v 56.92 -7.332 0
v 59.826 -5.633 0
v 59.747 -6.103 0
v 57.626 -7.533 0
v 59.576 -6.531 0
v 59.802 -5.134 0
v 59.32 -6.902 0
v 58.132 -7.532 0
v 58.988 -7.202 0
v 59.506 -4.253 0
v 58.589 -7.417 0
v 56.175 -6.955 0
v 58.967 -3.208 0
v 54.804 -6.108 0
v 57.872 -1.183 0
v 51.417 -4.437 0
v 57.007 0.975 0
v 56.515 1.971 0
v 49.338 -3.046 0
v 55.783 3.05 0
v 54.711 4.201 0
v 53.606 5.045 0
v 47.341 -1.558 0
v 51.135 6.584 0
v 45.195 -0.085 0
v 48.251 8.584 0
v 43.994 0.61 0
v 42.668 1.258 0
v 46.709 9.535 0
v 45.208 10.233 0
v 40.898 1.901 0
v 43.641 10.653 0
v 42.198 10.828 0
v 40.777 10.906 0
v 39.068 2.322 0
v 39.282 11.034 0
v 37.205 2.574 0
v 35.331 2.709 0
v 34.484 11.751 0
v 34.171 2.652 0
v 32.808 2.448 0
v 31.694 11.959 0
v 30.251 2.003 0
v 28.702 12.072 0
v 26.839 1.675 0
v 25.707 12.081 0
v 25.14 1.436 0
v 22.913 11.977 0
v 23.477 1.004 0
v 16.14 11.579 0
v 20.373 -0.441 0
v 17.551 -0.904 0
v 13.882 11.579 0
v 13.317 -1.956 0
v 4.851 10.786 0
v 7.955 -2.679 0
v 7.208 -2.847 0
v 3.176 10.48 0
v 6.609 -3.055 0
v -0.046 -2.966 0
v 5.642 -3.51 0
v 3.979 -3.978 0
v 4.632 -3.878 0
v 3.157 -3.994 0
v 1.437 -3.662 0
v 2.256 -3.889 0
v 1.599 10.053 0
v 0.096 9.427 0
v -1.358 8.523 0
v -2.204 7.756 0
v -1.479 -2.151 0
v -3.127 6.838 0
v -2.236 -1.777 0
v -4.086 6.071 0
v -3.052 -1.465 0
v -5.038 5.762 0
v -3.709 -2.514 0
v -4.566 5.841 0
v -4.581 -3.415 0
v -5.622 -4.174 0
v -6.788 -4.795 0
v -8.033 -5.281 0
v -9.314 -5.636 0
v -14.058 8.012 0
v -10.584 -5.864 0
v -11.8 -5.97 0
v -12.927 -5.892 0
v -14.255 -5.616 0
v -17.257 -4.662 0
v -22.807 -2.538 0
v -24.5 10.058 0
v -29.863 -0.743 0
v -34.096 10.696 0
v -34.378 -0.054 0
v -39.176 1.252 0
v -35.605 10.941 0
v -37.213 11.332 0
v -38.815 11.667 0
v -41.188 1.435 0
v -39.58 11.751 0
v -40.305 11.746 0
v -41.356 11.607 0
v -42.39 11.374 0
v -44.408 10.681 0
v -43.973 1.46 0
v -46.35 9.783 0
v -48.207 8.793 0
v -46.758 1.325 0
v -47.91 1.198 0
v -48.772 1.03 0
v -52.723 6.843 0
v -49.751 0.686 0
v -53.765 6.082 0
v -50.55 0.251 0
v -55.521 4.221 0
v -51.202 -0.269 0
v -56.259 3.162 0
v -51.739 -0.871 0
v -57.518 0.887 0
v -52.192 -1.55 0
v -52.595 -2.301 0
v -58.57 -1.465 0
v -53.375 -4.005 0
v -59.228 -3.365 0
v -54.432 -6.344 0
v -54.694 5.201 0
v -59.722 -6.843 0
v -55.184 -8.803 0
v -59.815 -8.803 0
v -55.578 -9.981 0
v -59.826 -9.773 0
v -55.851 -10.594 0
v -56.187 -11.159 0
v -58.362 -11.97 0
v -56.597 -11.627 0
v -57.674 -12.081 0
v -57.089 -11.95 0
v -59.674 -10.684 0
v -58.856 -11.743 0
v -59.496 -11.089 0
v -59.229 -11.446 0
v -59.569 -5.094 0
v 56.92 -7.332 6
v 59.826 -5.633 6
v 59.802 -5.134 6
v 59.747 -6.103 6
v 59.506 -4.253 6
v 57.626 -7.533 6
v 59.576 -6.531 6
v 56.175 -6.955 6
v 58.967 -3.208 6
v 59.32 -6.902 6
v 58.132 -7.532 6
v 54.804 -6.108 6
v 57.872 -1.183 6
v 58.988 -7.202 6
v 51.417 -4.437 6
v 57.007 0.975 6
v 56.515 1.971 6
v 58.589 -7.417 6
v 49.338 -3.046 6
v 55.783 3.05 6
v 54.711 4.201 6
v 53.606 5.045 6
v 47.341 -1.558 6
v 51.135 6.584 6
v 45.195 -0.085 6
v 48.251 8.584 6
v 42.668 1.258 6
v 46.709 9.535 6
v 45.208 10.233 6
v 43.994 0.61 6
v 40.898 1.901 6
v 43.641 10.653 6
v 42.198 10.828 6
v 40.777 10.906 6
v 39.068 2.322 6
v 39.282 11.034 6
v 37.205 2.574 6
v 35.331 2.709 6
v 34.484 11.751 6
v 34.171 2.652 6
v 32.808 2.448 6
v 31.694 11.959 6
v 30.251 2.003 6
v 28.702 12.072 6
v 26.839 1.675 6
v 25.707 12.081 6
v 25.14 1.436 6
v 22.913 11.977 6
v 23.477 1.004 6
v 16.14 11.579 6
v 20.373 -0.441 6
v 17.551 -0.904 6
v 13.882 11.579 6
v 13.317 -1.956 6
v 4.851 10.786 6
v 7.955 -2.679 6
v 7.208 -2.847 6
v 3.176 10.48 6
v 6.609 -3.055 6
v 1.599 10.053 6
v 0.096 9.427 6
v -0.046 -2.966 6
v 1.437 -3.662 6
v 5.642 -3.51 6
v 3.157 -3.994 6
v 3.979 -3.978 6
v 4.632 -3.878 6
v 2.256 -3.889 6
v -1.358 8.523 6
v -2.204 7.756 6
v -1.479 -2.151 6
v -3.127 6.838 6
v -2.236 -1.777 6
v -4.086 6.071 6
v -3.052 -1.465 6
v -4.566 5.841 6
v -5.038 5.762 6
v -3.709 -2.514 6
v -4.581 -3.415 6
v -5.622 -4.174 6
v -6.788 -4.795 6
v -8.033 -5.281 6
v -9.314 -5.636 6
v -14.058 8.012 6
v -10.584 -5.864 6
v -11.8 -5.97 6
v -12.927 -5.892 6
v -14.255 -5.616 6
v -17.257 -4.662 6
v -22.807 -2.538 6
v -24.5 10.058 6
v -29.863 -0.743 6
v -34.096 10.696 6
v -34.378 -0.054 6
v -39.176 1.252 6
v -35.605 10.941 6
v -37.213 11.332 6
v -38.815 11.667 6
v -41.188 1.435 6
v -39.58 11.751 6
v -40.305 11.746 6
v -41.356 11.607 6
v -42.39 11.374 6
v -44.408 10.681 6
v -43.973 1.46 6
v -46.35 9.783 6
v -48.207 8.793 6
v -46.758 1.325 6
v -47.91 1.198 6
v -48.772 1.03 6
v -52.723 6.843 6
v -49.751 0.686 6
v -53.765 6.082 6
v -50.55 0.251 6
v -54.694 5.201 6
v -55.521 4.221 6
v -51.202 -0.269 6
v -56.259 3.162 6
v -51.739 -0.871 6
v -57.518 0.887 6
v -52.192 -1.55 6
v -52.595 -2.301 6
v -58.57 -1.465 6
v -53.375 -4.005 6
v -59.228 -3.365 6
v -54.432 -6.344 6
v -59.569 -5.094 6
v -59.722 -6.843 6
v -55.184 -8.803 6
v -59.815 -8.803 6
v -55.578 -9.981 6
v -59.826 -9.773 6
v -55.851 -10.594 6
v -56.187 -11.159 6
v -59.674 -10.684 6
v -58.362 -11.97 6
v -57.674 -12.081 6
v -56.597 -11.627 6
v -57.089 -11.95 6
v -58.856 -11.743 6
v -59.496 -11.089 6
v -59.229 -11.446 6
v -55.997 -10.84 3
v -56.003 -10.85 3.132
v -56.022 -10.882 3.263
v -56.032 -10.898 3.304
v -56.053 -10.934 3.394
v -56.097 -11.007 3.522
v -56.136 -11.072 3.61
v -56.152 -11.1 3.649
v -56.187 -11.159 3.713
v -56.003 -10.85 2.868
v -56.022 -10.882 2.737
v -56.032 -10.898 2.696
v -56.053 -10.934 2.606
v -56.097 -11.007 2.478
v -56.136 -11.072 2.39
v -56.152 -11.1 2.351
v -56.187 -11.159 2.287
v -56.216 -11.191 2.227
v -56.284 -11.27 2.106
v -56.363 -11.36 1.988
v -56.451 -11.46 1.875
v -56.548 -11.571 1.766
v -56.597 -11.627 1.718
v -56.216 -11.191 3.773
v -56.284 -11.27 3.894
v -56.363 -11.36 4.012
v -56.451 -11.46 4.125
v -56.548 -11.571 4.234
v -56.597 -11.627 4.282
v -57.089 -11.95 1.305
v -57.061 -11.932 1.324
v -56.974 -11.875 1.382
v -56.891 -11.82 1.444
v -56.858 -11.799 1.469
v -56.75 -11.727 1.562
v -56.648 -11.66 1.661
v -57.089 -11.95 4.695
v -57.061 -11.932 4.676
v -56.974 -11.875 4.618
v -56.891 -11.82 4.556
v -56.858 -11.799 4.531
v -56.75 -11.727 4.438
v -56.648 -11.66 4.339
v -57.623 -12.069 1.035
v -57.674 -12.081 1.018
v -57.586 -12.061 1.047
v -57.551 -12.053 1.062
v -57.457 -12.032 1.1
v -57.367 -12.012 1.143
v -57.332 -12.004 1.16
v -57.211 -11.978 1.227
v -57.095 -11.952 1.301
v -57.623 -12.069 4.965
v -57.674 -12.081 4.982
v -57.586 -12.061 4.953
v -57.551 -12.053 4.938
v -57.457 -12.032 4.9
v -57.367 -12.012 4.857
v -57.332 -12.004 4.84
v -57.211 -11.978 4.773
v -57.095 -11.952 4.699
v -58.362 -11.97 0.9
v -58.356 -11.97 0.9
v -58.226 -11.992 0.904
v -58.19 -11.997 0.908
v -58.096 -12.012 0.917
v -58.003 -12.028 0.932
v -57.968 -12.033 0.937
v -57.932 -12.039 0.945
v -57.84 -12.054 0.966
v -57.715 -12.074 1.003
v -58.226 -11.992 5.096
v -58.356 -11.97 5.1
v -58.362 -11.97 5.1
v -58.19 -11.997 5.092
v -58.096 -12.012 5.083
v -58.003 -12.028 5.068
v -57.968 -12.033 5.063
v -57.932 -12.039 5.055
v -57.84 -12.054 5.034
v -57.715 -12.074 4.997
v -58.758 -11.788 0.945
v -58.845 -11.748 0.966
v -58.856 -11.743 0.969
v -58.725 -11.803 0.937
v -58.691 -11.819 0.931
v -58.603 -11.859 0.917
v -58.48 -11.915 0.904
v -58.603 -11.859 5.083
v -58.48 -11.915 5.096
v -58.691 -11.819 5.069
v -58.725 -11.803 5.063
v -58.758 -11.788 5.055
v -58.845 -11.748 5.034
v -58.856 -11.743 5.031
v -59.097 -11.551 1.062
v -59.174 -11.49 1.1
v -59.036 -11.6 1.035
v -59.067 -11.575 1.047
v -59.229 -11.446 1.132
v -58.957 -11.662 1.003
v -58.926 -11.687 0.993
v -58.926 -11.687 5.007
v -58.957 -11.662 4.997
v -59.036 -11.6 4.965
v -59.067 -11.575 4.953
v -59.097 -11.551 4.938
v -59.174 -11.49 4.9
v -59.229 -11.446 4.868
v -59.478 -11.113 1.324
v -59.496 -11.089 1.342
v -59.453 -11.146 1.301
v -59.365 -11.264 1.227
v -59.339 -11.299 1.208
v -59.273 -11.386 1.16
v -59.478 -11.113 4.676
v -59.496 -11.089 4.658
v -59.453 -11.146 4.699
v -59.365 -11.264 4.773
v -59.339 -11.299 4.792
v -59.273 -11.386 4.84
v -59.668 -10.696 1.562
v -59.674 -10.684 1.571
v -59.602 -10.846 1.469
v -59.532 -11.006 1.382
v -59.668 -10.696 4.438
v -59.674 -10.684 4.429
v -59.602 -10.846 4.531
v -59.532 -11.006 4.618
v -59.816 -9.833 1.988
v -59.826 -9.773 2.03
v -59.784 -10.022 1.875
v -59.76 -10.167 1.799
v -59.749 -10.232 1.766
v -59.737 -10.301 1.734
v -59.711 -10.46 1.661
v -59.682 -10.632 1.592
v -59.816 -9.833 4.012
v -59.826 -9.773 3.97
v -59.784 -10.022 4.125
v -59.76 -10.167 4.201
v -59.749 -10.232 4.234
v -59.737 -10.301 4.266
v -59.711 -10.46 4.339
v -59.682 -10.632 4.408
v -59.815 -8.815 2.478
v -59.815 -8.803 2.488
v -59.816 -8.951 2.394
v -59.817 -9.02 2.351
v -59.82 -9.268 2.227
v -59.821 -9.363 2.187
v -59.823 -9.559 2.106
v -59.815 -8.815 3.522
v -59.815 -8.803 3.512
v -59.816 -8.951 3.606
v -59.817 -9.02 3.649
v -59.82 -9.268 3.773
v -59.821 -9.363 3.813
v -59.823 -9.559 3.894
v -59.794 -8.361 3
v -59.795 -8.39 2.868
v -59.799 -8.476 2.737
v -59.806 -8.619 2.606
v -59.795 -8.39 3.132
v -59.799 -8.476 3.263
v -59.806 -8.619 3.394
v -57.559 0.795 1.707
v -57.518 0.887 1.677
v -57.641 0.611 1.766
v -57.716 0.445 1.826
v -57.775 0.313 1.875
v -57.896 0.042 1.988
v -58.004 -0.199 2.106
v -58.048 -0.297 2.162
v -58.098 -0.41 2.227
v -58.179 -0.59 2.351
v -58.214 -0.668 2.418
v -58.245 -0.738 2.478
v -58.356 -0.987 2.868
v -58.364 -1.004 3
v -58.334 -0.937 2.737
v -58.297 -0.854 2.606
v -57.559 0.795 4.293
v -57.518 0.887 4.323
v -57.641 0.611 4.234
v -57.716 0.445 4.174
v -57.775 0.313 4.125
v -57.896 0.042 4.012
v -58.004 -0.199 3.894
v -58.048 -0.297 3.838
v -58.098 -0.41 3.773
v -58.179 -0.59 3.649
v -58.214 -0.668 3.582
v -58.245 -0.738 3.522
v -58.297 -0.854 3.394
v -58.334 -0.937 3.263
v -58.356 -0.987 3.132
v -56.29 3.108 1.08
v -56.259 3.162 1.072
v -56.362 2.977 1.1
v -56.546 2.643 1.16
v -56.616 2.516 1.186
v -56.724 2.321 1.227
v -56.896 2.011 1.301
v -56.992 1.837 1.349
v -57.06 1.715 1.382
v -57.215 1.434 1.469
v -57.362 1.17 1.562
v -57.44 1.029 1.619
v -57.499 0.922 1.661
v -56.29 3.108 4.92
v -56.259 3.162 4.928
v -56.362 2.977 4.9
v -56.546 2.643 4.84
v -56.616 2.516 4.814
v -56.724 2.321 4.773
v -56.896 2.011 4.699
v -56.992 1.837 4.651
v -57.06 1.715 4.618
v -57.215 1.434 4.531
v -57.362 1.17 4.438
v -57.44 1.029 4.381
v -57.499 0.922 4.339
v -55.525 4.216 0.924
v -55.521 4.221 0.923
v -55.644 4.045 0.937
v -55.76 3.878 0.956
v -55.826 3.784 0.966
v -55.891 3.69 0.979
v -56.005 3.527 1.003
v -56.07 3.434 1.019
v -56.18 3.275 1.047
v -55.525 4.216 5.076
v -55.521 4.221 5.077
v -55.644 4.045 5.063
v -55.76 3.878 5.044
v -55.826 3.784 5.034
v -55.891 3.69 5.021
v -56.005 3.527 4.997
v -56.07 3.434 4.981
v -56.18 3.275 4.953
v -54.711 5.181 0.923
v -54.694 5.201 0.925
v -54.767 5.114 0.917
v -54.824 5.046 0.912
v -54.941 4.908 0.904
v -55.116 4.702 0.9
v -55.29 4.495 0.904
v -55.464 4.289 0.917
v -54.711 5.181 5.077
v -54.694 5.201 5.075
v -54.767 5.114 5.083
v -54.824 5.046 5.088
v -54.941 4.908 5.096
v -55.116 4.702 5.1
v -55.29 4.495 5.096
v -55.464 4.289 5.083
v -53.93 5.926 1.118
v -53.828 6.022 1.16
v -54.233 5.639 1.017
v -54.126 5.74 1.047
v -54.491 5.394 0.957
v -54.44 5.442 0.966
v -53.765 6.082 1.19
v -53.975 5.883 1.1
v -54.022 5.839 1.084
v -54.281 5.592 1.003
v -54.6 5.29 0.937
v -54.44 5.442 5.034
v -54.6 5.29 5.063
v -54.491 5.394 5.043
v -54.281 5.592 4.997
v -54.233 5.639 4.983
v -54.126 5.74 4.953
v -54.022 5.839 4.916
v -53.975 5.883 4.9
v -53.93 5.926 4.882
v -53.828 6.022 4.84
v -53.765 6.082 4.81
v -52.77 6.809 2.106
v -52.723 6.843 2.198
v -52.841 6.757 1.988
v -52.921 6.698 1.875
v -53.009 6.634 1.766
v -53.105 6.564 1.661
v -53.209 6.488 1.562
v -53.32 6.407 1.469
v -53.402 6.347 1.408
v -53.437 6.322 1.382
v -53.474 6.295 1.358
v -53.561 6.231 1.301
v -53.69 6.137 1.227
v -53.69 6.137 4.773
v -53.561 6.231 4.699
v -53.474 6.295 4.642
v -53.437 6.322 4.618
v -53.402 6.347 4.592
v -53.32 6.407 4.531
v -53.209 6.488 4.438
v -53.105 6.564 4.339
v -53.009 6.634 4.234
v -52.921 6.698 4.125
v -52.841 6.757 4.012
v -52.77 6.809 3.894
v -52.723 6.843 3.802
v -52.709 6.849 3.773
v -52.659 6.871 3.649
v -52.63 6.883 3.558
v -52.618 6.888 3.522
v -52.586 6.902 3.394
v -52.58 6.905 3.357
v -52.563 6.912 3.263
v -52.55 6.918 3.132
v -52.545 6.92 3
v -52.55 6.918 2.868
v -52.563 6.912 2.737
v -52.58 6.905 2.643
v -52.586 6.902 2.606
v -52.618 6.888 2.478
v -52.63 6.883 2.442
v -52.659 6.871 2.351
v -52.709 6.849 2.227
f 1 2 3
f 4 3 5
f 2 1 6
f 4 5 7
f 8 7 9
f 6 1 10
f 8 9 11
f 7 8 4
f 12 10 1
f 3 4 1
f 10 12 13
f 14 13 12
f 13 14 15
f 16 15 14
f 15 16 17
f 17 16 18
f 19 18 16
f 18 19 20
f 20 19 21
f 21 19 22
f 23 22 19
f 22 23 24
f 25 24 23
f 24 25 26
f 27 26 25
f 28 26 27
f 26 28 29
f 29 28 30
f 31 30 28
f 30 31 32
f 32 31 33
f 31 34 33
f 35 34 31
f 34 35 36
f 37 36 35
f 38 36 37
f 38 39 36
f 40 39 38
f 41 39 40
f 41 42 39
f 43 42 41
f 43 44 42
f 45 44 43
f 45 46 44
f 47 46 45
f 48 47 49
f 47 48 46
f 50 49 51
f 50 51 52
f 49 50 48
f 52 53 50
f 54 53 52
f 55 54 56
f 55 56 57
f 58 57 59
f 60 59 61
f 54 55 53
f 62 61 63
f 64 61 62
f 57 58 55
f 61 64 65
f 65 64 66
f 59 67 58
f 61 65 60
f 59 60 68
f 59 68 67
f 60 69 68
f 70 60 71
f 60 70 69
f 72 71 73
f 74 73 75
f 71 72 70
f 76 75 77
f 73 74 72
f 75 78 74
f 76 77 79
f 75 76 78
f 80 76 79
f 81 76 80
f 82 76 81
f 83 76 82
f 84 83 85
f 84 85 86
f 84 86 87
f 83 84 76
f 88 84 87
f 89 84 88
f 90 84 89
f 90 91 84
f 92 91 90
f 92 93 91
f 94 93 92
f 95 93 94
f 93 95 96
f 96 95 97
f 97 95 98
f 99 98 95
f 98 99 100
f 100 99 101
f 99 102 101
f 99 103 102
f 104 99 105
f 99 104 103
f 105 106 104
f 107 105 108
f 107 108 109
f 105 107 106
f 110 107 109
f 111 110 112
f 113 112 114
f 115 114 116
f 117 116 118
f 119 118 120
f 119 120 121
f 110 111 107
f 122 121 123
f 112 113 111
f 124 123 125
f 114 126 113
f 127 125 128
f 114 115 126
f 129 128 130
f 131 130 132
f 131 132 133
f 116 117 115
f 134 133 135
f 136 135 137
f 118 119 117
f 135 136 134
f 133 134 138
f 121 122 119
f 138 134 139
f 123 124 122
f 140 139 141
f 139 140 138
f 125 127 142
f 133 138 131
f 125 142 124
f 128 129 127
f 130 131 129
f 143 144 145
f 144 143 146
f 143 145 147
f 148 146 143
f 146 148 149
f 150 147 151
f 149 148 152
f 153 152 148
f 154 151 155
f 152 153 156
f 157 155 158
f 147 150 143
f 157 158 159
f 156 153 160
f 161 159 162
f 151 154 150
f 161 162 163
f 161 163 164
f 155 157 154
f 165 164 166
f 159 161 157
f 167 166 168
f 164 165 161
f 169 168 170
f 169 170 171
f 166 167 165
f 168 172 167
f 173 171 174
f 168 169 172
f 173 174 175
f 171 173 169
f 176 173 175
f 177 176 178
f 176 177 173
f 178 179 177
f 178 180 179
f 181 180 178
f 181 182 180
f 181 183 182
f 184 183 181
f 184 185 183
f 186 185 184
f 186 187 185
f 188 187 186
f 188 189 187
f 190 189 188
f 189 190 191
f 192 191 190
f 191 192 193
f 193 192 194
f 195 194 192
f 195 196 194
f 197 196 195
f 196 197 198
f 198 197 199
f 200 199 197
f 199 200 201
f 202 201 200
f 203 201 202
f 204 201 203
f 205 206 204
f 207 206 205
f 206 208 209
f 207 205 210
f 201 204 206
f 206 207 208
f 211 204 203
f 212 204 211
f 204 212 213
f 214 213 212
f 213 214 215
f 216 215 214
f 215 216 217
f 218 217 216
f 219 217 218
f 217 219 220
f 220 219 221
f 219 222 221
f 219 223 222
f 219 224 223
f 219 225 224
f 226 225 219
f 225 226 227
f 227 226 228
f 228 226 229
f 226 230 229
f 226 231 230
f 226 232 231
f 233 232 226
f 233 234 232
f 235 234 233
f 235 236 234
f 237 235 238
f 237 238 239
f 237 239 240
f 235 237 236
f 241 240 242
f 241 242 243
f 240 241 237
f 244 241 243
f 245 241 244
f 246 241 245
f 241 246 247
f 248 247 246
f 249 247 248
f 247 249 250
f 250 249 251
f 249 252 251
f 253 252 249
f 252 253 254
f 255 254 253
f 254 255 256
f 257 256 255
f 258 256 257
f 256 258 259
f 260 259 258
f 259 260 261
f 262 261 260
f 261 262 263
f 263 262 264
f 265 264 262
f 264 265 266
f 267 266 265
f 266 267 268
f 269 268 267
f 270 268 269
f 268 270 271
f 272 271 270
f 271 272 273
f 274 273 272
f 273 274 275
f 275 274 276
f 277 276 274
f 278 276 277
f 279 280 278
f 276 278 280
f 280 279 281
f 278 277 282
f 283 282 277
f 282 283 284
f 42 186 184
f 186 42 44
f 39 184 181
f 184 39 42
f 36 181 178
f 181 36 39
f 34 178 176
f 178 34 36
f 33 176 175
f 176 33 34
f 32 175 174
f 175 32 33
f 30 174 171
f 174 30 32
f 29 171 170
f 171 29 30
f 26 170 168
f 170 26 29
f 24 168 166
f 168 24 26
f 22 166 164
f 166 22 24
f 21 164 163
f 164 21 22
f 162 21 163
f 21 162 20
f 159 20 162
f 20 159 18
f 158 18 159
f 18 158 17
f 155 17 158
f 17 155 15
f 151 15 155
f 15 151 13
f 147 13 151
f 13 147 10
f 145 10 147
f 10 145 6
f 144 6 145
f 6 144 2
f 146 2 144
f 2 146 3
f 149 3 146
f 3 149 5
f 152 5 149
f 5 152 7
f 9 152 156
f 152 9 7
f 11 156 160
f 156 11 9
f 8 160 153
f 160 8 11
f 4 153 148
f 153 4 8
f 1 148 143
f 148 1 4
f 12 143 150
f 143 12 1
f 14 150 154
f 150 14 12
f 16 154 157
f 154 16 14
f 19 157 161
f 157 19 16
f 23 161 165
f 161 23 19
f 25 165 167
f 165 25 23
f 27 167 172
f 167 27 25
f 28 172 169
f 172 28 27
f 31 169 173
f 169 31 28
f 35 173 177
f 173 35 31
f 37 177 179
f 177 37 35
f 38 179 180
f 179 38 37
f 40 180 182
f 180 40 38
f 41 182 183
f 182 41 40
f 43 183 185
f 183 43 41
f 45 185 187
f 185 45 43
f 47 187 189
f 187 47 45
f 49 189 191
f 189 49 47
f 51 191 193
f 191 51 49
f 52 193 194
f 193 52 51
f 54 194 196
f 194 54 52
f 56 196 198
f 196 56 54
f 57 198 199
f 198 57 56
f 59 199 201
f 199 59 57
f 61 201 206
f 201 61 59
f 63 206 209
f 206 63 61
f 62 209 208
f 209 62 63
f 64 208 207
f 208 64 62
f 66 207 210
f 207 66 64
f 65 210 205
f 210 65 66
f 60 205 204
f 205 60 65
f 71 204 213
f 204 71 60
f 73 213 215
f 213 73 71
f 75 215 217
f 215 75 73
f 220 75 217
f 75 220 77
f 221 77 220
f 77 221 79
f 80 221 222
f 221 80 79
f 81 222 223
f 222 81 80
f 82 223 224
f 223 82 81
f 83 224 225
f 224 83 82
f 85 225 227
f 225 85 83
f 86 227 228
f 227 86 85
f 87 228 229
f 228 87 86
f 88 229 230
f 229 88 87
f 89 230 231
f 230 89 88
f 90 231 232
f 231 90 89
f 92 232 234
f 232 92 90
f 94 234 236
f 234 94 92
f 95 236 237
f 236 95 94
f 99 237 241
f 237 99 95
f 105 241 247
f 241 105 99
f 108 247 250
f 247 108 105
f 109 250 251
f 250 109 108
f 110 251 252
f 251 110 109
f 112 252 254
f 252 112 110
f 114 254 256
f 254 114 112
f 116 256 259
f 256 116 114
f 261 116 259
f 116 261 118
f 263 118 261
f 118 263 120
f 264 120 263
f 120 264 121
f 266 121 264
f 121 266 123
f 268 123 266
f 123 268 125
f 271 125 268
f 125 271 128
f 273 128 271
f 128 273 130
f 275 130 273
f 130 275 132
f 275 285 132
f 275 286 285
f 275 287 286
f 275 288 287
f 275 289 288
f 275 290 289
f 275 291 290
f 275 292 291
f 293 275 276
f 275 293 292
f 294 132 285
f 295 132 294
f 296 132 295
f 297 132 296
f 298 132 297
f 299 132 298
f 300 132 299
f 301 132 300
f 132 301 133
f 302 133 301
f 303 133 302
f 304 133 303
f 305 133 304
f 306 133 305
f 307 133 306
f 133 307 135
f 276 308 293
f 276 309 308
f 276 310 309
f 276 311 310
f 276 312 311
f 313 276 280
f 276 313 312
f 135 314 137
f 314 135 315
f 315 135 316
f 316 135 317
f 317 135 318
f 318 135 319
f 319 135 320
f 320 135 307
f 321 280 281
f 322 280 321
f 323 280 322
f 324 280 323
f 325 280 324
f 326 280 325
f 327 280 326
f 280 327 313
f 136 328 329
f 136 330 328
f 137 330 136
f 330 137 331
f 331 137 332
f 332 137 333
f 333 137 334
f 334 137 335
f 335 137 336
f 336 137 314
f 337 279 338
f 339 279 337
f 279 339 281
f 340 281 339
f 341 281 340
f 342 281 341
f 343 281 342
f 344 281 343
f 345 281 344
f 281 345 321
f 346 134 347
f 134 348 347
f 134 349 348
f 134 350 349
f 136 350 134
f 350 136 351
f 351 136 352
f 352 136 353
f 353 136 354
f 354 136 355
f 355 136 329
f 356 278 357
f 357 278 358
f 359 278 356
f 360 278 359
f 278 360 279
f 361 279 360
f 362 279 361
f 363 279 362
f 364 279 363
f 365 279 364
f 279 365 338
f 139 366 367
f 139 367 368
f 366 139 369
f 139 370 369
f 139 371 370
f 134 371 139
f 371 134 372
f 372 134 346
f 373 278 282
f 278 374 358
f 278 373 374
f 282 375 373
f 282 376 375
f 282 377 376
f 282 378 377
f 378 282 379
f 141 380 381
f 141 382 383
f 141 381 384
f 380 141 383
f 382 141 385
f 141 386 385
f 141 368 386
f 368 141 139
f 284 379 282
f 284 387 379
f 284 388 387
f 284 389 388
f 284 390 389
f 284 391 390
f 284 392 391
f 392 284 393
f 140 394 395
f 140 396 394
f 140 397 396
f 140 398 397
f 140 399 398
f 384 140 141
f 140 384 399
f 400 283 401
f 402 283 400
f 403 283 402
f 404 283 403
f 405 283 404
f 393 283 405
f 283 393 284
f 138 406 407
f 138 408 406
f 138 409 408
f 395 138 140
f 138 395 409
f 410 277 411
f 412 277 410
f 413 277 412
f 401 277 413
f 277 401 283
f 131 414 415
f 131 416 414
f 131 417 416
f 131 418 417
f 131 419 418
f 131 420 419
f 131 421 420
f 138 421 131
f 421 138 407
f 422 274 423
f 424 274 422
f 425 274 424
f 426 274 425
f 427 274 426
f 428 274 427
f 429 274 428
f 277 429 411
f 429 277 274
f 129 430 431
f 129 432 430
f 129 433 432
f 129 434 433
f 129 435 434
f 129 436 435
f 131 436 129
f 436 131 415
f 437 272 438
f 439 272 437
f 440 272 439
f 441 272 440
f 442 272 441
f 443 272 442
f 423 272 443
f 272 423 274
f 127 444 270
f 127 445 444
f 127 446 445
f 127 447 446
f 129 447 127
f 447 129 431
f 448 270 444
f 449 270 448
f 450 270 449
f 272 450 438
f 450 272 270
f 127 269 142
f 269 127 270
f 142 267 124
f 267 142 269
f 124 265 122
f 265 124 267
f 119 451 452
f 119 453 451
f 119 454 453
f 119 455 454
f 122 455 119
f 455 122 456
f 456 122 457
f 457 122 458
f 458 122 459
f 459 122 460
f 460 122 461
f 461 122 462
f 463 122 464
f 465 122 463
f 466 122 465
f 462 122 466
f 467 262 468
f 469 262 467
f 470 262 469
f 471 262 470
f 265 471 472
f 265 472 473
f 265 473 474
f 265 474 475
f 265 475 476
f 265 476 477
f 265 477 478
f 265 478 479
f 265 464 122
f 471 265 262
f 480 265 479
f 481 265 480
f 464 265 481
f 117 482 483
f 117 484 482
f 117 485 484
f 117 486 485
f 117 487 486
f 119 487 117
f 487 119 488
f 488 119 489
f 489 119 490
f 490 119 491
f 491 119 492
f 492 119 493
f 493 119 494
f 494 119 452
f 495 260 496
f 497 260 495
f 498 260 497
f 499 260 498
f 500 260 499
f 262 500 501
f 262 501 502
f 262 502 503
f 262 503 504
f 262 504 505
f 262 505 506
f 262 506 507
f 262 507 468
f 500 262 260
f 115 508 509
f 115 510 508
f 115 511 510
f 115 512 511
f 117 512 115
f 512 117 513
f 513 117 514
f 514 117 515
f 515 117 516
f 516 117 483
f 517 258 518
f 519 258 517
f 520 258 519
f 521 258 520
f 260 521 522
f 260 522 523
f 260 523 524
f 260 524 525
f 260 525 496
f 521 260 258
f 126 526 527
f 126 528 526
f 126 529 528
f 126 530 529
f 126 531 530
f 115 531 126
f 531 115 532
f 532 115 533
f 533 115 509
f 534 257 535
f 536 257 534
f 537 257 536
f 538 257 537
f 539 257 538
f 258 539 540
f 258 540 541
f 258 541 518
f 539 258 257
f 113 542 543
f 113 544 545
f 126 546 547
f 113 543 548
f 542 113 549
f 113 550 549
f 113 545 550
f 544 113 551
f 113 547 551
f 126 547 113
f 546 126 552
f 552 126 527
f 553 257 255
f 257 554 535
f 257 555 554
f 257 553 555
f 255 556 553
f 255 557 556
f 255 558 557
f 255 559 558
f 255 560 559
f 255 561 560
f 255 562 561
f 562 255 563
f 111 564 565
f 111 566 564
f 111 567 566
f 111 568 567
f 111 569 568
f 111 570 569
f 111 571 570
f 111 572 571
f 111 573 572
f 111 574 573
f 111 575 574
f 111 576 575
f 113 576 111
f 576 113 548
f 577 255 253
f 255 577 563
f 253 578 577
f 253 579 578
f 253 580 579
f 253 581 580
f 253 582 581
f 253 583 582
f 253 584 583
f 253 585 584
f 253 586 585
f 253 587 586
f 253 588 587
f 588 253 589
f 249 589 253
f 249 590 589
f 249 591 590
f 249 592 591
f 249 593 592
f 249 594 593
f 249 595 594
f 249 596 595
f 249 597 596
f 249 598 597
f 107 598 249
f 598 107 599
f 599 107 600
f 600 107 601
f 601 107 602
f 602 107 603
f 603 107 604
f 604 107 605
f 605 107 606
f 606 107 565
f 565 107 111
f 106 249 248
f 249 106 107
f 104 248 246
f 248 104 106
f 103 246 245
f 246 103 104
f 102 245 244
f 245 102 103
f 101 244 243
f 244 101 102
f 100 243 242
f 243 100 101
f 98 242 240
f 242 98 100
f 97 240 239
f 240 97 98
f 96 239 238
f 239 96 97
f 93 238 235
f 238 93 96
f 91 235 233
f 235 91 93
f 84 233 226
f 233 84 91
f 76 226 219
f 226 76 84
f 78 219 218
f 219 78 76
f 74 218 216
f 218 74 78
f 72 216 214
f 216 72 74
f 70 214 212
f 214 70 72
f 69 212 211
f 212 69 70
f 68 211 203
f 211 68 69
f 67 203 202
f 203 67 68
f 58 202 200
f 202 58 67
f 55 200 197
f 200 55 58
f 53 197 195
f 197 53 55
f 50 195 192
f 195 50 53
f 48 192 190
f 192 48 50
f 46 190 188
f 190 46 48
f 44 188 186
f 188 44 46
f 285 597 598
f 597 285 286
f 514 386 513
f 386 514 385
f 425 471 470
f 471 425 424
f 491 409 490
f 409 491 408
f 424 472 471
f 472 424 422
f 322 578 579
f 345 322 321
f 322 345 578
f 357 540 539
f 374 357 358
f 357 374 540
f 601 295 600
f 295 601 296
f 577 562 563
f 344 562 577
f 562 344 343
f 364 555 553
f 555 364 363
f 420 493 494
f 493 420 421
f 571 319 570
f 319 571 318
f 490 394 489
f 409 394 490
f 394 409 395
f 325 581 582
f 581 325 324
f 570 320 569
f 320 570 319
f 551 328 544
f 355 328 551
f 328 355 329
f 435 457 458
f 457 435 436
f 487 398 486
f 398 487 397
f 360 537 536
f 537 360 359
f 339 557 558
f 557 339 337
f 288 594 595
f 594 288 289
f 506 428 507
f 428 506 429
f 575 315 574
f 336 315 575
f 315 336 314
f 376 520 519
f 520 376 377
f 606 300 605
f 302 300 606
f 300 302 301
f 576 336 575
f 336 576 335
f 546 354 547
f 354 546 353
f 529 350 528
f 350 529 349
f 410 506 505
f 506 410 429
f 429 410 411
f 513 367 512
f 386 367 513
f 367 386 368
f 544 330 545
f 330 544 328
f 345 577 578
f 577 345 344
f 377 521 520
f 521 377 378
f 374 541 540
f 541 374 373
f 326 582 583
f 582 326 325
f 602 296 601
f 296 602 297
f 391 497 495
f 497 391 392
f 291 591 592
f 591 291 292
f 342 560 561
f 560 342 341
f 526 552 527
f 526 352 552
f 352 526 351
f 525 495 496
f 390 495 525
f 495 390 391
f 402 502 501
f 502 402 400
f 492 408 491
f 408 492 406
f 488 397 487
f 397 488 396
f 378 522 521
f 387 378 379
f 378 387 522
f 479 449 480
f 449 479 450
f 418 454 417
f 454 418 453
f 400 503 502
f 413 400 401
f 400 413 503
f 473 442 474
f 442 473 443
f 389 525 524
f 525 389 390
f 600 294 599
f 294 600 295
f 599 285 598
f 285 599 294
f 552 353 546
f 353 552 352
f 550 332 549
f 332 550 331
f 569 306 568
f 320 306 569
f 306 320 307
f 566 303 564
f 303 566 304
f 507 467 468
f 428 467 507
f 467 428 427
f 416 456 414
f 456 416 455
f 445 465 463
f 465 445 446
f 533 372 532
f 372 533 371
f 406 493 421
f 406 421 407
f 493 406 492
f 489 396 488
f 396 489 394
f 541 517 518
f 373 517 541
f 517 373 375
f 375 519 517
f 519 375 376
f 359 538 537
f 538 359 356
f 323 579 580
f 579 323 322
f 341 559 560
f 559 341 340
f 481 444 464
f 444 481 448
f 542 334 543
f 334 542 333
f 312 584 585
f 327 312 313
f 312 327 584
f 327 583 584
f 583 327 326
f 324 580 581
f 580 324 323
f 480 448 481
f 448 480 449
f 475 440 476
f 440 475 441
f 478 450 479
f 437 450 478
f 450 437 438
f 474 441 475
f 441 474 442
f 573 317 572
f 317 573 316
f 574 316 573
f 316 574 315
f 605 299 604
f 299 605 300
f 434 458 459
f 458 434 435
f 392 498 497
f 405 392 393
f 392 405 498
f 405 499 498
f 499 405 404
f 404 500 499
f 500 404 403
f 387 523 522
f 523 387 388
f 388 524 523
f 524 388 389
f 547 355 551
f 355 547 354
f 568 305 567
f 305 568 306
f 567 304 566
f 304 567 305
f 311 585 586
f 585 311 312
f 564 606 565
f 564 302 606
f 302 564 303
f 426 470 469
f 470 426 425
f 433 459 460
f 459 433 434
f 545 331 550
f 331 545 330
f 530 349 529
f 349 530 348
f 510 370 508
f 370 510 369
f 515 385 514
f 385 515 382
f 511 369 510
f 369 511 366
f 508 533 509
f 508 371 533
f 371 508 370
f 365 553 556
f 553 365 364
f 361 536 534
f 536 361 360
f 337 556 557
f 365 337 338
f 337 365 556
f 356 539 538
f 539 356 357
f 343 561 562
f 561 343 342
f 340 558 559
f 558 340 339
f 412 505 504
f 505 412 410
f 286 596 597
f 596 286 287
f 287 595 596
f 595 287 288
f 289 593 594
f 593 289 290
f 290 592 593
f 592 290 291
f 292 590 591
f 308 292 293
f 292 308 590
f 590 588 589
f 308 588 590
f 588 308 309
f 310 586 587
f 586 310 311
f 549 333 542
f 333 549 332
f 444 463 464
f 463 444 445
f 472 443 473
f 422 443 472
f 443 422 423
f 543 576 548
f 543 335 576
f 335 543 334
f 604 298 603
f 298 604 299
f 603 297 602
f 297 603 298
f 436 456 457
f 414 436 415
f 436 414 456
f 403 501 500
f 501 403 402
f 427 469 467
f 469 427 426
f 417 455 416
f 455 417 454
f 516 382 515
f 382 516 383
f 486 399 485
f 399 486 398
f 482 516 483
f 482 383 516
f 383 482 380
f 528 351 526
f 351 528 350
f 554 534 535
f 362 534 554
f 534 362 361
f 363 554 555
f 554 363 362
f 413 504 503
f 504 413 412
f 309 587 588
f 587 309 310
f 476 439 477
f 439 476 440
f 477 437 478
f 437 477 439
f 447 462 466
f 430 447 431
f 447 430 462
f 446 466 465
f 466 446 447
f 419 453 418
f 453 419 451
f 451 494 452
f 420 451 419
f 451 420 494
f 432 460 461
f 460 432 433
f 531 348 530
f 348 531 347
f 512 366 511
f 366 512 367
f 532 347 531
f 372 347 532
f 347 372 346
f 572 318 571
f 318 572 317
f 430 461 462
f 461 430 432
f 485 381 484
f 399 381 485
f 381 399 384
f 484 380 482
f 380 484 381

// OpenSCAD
// file: ../18-frida-kahlo-book-lede.w1200.h630.scad
fridaKalohBrow(5);

module fridaKalohBrow(h)
{
  scale([25.4/90, -25.4/90, 1]) union()
  {
    linear_extrude(height=h)
      polygon([[-41.812656,21.152012],[-45.803359,20.878887],[-50.510781,19.898887],[-61.147656,16.519512],[-80.812656,8.992012],[-105.812656,2.632012],[-121.812656,0.192012],[-138.812656,-4.437988],[-145.940625,-5.083770],[-155.808906,-5.171738],[-165.679062,-4.695332],[-169.759082,-4.243437],[-172.812656,-3.647988],[-176.281621,-2.429023],[-179.114375,-0.890020],[-181.424707,0.953438],[-183.326406,3.085762],[-184.933262,5.491367],[-186.359062,8.154668],[-189.122656,14.192012],[-192.867656,22.478262],[-195.532656,31.192012],[-196.930625,35.366699],[-197.897441,37.538770],[-199.088906,39.539512],[-200.539590,41.198066],[-202.284062,42.343574],[-204.356895,42.805176],[-206.792656,42.412012],[-208.545059,41.609570],[-209.865625,40.556230],[-210.811895,39.291719],[-211.441406,37.855762],[-211.980312,34.628418],[-211.942656,31.192012],[-211.613594,24.246699],[-211.072656,18.049512],[-209.864219,11.923574],[-207.532656,5.192012],[-203.804375,-3.141582],[-199.343906,-11.204238],[-196.728652,-14.956719],[-193.797812,-18.428770],[-190.507207,-21.549492],[-186.812656,-24.247988],[-170.812656,-31.157988],[-164.232656,-34.664082],[-157.352656,-37.846738],[-150.202656,-40.300020],[-146.535781,-41.126289],[-142.812656,-41.617988],[-140.245586,-41.636562],[-137.532969,-41.339082],[-131.857656,-40.151738],[-126.159844,-38.767520],[-120.812656,-37.897988],[-86.812656,-35.637988],[-49.812656,-28.387988],[-17.852656,-20.417988],[-16.177129,-20.695488],[-14.477812,-21.512988],[-11.081406,-24.227988],[-7.810625,-27.482988],[-4.812656,-30.197988],[0.339063,-33.401582],[5.666094,-35.621738],[11.253750,-37.135020],[17.187344,-38.217988],[49.187344,-41.027988],[57.187344,-41.027988],[81.187344,-42.437988],[91.088125,-42.805176],[101.698594,-42.772988],[112.303437,-42.373301],[122.187344,-41.637988],[139.187344,-39.097988],[144.486562,-38.642988],[149.518594,-38.367988],[154.635000,-37.747988],[160.187344,-36.257988],[165.503438,-33.784863],[170.968594,-30.415488],[181.187344,-23.327988],[189.943594,-17.874238],[193.859063,-14.886270],[197.657344,-10.807988],[200.250781,-6.983457],[201.994844,-3.454238],[205.057344,4.192012],[208.938594,11.368262],[210.849688,15.069355],[211.897344,18.192012],[211.980313,19.958750],[211.702344,21.625293],[211.094375,23.141133],[210.187344,24.455762],[209.012188,25.518672],[207.599844,26.279355],[205.981250,26.687305],[204.187344,26.692012],[201.685469,25.980293],[199.044844,24.643262],[194.187344,21.642012],[182.187344,15.722012],[174.820781,10.794199],[167.744844,5.519512],[160.140156,0.301074],[155.883477,-2.161074],[151.187344,-4.457988],[144.912813,-6.734863],[138.431094,-8.227988],[131.827500,-9.121113],[125.187344,-9.597988],[121.078281,-9.397207],[116.247344,-8.674238],[107.187344,-7.097988],[95.097344,-5.935488],[89.077656,-5.087051],[83.187344,-3.557988],[72.187344,1.562012],[62.187344,3.202012],[47.187344,6.932012],[28.187344,9.492012],[25.541035,10.086816],[23.417500,10.824824],[19.991094,12.437012],[16.412813,13.741699],[14.099434,14.095332],[11.187344,14.152012],[7.993965,13.779727],[5.093438,12.975605],[-0.161406,10.508262],[-5.241875,7.622793],[-7.924434,6.296016],[-10.812656,5.192012],[-13.142598,8.906387],[-16.231562,12.101387],[-19.920762,14.791074],[-24.051406,16.989512],[-28.464707,18.710762],[-33.001875,19.968887],[-37.504121,20.777949],[-41.812656,21.152012]]);
  }
}
// file: ../../../shapes/open-cylinder/open-cylinder.scad
module openCylinder(height = 3,
                    outerRadius = 7,
                    innerRadius = 4.5,
                    fn = 100)
{
    $fn = fn;

    difference()
    {
        cylinder(r=outerRadius,
                 h=height);

        translate([0, 0, -1])
        cylinder(r=innerRadius,
                 h=height+1.01);
    }
}
// main file
use <../../../shapes/open-cylinder/open-cylinder.scad>

use <../18-frida-kahlo-book-lede.w1200.h630.scad>

mask();

module mask()
{
//	union()
	difference()
	{
		fridaKalohBrow(6);

		rotate([90, 0, -11])		
		translate([-55,3,-9])
		
		cylinder(r=2.1,
                 h=44,
                 $fn = 100);
	}
}
